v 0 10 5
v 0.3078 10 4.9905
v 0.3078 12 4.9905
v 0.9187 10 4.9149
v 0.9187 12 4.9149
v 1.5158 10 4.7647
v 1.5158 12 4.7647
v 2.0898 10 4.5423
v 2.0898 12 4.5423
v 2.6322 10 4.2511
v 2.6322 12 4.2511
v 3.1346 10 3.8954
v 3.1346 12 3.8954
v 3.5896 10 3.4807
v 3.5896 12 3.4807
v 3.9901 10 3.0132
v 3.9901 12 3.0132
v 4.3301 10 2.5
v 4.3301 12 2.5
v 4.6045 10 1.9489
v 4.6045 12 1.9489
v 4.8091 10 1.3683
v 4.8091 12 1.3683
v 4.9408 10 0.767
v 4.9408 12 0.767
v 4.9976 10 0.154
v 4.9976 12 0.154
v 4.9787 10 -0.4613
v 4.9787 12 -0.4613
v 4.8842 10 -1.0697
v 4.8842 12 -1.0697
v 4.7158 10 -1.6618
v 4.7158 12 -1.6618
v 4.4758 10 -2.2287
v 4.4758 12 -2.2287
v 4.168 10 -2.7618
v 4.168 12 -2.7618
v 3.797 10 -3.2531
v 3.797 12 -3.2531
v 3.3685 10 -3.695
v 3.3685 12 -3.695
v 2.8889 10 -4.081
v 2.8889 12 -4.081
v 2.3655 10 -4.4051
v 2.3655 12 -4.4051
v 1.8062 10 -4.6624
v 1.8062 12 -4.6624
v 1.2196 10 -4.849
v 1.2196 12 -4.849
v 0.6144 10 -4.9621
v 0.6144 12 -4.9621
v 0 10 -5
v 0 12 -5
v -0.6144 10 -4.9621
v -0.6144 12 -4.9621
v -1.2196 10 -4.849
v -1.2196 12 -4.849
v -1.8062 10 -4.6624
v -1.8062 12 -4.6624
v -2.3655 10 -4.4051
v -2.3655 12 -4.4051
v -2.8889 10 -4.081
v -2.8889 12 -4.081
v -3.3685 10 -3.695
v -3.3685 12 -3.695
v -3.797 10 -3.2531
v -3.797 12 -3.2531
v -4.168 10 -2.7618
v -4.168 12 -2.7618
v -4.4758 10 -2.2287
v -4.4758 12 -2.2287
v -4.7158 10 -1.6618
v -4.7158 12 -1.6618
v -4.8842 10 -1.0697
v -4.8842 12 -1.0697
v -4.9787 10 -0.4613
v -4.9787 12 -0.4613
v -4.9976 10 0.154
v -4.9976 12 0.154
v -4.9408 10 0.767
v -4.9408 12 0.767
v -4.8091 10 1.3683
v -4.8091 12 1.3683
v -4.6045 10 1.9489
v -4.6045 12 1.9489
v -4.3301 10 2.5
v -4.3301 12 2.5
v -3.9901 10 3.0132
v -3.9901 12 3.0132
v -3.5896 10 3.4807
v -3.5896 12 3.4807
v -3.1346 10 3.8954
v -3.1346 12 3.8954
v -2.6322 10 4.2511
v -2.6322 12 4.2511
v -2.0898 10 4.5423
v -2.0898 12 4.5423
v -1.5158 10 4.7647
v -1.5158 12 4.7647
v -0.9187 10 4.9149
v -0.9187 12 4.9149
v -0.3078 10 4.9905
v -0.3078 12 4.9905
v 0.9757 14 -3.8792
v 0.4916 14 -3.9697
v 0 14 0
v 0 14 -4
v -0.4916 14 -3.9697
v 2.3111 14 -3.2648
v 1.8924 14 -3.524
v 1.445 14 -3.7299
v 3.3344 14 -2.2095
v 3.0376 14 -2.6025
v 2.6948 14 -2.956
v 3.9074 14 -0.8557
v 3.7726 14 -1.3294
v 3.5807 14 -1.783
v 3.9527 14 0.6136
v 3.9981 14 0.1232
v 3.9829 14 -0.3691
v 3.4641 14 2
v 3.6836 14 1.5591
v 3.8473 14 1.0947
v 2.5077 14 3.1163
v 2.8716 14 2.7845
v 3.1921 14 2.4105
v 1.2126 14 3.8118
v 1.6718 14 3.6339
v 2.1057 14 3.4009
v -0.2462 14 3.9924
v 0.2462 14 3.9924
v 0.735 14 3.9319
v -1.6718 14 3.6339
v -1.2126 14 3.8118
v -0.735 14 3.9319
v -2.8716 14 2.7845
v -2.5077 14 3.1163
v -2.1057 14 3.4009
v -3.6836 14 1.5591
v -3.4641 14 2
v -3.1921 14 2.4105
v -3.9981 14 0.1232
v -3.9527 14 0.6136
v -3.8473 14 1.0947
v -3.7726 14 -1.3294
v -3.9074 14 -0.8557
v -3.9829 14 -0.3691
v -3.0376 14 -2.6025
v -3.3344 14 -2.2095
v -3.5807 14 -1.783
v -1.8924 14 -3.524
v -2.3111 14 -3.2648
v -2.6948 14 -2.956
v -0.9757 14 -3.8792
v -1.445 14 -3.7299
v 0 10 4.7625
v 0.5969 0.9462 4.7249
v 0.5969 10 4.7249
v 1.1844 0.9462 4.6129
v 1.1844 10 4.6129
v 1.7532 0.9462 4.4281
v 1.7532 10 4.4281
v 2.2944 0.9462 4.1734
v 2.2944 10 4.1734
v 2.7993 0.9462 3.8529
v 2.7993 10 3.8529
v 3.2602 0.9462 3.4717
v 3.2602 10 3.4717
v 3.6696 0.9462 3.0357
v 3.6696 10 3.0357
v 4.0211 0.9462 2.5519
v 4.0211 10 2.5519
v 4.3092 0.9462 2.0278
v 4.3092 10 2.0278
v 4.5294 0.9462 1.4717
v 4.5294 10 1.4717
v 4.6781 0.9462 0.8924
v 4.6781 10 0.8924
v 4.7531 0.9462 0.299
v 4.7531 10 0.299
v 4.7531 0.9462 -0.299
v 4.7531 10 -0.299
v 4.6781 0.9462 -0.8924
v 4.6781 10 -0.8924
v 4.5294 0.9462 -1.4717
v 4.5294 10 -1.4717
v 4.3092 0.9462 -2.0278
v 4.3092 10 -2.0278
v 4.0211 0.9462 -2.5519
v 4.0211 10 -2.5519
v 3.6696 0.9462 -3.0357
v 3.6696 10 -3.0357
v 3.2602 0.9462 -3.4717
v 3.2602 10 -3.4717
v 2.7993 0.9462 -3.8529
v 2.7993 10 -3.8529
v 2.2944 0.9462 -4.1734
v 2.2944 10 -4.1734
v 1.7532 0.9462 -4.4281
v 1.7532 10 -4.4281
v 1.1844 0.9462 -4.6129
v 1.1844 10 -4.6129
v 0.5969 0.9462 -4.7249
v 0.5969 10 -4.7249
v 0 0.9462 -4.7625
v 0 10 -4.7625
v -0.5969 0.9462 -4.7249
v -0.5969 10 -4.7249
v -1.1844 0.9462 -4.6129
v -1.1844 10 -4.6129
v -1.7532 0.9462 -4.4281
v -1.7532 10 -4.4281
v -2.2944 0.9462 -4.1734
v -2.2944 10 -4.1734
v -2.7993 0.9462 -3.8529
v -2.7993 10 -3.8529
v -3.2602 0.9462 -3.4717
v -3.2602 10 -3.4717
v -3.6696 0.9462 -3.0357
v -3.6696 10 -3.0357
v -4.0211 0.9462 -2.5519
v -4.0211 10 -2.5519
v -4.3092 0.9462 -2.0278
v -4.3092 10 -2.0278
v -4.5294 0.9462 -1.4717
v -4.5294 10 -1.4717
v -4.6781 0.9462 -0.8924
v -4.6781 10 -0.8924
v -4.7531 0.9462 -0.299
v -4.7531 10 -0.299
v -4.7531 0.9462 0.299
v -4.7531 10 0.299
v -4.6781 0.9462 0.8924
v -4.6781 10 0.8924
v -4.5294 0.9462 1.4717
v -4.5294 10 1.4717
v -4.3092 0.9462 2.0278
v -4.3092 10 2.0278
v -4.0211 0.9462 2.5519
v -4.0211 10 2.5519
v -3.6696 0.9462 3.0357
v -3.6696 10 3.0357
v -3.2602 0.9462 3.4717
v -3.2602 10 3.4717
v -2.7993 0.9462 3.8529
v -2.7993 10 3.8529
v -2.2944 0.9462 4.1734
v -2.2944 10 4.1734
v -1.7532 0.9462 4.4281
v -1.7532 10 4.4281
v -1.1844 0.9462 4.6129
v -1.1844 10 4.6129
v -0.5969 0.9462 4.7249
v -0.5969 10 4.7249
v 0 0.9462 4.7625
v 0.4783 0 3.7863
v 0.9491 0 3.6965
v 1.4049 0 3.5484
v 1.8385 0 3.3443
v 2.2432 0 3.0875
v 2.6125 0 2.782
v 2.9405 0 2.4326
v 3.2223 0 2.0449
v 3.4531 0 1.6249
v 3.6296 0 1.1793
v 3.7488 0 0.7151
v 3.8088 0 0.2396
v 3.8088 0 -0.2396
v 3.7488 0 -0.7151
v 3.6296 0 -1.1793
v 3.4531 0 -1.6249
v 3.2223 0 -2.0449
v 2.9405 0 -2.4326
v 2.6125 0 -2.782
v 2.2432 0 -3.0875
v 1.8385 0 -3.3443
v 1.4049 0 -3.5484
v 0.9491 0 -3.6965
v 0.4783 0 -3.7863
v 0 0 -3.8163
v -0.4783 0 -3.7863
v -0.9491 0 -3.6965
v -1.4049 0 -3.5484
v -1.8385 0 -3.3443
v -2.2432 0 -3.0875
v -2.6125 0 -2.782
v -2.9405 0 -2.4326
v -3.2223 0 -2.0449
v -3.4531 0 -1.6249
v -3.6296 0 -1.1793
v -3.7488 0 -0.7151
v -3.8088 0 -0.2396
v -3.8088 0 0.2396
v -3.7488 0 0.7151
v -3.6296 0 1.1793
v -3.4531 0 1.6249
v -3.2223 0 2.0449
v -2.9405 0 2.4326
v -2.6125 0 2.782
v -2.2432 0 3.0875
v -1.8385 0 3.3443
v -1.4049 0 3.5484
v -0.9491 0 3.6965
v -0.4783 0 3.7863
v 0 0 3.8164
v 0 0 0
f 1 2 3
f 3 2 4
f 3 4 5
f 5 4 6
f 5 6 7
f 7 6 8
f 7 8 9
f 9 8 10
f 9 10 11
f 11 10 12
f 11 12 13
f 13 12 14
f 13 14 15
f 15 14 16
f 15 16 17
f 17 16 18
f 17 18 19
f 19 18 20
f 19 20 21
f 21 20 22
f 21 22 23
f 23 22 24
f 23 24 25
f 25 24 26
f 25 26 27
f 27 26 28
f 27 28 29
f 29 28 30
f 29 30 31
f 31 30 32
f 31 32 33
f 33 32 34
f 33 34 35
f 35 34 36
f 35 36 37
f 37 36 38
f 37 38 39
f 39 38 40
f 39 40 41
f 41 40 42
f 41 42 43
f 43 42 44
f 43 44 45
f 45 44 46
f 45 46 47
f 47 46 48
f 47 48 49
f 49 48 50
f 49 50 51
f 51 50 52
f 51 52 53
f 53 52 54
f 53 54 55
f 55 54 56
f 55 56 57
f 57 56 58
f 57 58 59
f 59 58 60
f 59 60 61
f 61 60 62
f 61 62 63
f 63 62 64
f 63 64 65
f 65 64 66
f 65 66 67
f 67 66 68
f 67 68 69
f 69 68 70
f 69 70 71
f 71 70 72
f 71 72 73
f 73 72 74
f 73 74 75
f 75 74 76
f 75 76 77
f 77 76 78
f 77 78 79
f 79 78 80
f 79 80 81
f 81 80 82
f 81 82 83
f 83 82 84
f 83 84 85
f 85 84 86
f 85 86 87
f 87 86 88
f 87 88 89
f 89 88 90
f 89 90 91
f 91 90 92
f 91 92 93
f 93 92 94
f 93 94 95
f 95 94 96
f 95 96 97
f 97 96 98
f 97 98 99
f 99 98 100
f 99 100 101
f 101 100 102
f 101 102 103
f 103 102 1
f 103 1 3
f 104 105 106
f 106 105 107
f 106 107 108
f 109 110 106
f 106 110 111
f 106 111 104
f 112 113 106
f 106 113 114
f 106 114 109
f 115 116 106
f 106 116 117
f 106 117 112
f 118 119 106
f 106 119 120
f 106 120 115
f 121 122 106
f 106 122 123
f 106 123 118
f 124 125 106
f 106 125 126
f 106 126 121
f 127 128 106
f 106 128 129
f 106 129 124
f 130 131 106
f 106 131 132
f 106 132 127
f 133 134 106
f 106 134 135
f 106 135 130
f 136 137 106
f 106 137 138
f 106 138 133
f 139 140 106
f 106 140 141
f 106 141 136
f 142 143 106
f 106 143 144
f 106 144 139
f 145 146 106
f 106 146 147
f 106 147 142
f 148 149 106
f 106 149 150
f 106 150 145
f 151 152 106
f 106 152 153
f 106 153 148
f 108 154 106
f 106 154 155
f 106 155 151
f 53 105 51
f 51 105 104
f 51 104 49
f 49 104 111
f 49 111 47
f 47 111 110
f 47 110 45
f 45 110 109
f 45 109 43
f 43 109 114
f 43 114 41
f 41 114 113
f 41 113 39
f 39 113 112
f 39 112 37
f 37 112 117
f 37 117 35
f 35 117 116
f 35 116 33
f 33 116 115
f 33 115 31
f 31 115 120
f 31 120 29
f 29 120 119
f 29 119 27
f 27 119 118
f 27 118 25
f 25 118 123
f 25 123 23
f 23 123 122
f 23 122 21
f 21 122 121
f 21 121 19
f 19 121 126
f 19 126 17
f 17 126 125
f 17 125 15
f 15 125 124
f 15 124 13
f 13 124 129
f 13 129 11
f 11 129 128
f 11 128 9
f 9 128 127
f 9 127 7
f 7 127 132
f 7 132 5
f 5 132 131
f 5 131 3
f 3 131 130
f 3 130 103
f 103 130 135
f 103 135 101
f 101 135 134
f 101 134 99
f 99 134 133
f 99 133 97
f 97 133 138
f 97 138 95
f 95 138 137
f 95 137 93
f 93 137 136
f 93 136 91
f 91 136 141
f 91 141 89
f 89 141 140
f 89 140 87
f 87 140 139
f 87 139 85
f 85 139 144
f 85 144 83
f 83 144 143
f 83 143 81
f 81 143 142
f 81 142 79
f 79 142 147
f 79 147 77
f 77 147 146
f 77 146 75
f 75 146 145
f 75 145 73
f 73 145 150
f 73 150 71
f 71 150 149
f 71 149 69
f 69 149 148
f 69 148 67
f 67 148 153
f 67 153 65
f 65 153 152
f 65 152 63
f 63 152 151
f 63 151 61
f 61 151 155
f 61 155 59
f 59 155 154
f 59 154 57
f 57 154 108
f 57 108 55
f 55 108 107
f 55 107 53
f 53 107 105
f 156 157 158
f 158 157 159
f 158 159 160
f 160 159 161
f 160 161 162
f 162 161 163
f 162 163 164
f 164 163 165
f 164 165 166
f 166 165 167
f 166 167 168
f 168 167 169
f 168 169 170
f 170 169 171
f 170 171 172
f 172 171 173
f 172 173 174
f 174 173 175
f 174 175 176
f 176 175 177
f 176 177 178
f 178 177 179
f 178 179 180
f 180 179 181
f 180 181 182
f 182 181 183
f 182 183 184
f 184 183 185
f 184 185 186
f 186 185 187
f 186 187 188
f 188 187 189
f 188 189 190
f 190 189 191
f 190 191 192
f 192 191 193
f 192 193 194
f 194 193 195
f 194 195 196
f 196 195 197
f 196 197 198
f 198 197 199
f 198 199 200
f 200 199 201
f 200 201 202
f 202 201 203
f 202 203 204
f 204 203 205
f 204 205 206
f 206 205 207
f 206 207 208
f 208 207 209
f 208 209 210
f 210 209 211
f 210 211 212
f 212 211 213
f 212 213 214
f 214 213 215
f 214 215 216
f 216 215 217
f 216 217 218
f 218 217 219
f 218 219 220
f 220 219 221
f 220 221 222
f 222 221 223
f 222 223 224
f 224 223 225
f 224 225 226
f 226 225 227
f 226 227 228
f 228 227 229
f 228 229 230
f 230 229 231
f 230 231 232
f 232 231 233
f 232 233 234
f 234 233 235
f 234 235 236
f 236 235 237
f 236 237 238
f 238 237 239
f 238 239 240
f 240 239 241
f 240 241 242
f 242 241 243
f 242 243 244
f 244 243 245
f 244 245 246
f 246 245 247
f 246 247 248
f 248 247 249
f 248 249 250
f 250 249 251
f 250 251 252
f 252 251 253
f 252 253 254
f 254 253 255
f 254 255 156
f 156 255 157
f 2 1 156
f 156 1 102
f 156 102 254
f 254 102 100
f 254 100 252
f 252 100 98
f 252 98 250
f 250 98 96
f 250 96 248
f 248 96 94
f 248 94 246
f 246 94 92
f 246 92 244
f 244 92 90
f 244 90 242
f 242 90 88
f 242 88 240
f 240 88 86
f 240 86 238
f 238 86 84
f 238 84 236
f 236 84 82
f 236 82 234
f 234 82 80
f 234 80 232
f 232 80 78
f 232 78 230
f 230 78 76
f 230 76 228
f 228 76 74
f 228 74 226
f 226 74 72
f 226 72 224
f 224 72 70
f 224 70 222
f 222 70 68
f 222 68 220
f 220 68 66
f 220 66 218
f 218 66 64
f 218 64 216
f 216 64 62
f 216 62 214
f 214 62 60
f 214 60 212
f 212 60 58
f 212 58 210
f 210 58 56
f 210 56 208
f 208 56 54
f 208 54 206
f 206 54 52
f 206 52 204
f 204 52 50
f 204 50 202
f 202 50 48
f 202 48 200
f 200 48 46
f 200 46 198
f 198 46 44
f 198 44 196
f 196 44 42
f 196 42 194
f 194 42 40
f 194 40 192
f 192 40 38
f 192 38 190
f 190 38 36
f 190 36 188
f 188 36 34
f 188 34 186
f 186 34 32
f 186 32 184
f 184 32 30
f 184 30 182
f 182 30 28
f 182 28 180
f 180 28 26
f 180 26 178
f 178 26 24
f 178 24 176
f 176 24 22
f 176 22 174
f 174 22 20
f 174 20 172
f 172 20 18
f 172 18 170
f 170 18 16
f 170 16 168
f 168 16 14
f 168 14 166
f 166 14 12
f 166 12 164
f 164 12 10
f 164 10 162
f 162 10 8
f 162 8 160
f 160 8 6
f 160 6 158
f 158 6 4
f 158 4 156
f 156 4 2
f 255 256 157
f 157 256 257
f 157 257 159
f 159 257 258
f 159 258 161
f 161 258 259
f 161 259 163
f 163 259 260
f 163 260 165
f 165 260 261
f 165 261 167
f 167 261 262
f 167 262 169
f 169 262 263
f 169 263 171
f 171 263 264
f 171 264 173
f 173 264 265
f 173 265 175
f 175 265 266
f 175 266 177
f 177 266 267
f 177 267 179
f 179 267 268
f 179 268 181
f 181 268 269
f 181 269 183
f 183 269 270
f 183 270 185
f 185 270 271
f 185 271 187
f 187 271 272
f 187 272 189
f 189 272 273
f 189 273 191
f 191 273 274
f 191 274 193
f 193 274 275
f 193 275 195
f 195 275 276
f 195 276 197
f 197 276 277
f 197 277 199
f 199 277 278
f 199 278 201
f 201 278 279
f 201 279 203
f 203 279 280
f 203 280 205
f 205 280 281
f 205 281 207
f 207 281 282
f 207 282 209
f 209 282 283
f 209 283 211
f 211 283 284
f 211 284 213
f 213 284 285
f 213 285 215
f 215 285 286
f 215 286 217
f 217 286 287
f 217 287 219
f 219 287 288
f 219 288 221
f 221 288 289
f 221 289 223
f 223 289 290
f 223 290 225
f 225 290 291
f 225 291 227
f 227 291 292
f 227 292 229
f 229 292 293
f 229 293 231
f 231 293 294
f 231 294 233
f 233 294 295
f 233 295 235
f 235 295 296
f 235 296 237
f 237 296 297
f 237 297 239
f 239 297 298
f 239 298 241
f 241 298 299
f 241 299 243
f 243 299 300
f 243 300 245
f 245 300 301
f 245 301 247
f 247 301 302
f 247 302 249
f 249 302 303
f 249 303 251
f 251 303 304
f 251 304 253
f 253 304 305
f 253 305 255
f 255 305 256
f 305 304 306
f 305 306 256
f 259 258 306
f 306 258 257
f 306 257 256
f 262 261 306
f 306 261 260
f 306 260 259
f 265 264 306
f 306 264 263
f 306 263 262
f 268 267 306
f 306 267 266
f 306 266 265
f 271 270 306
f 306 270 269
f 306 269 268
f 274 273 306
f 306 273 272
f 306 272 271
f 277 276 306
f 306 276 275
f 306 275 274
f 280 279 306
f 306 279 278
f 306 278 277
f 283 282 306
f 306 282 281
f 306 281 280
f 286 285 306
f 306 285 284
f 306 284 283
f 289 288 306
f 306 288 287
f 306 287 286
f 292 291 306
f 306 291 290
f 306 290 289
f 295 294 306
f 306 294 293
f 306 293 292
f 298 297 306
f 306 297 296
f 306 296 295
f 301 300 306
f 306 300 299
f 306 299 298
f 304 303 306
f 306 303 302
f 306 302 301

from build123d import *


# Read off the part's stored shape, not the designer's step: 3/8-16 机械螺纹 螺柱1
with BuildPart() as part:
    # 草图1 → 旋转3 (revolve)
    with BuildSketch(Plane.XY, mode=Mode.PRIVATE) as revolve_3_sk:
        Polygon((0, 0), (0, 14), (-4, 14), (-5, 12), (-5, 0), align=None)
    revolve(revolve_3_sk.sketch.rotate(Axis((0, 0, 0), (0, 1, 0)), 270), axis=Axis((0, 0, 0), (0, 1, 0)))

    # 3/8-16 机械螺纹 螺柱1 outline → 3/8-16 机械螺纹 螺柱1 (revolve, cut)
    with BuildSketch(Plane.XY):
        Polygon((3.81635, 0), (5, 0), (5, 10), (4.7625, 10), (4.7625, 0.94615), align=None)
    revolve(axis=Axis((0, 0, 0), (0, 1, 0)), mode=Mode.SUBTRACT)


solid = part.part
